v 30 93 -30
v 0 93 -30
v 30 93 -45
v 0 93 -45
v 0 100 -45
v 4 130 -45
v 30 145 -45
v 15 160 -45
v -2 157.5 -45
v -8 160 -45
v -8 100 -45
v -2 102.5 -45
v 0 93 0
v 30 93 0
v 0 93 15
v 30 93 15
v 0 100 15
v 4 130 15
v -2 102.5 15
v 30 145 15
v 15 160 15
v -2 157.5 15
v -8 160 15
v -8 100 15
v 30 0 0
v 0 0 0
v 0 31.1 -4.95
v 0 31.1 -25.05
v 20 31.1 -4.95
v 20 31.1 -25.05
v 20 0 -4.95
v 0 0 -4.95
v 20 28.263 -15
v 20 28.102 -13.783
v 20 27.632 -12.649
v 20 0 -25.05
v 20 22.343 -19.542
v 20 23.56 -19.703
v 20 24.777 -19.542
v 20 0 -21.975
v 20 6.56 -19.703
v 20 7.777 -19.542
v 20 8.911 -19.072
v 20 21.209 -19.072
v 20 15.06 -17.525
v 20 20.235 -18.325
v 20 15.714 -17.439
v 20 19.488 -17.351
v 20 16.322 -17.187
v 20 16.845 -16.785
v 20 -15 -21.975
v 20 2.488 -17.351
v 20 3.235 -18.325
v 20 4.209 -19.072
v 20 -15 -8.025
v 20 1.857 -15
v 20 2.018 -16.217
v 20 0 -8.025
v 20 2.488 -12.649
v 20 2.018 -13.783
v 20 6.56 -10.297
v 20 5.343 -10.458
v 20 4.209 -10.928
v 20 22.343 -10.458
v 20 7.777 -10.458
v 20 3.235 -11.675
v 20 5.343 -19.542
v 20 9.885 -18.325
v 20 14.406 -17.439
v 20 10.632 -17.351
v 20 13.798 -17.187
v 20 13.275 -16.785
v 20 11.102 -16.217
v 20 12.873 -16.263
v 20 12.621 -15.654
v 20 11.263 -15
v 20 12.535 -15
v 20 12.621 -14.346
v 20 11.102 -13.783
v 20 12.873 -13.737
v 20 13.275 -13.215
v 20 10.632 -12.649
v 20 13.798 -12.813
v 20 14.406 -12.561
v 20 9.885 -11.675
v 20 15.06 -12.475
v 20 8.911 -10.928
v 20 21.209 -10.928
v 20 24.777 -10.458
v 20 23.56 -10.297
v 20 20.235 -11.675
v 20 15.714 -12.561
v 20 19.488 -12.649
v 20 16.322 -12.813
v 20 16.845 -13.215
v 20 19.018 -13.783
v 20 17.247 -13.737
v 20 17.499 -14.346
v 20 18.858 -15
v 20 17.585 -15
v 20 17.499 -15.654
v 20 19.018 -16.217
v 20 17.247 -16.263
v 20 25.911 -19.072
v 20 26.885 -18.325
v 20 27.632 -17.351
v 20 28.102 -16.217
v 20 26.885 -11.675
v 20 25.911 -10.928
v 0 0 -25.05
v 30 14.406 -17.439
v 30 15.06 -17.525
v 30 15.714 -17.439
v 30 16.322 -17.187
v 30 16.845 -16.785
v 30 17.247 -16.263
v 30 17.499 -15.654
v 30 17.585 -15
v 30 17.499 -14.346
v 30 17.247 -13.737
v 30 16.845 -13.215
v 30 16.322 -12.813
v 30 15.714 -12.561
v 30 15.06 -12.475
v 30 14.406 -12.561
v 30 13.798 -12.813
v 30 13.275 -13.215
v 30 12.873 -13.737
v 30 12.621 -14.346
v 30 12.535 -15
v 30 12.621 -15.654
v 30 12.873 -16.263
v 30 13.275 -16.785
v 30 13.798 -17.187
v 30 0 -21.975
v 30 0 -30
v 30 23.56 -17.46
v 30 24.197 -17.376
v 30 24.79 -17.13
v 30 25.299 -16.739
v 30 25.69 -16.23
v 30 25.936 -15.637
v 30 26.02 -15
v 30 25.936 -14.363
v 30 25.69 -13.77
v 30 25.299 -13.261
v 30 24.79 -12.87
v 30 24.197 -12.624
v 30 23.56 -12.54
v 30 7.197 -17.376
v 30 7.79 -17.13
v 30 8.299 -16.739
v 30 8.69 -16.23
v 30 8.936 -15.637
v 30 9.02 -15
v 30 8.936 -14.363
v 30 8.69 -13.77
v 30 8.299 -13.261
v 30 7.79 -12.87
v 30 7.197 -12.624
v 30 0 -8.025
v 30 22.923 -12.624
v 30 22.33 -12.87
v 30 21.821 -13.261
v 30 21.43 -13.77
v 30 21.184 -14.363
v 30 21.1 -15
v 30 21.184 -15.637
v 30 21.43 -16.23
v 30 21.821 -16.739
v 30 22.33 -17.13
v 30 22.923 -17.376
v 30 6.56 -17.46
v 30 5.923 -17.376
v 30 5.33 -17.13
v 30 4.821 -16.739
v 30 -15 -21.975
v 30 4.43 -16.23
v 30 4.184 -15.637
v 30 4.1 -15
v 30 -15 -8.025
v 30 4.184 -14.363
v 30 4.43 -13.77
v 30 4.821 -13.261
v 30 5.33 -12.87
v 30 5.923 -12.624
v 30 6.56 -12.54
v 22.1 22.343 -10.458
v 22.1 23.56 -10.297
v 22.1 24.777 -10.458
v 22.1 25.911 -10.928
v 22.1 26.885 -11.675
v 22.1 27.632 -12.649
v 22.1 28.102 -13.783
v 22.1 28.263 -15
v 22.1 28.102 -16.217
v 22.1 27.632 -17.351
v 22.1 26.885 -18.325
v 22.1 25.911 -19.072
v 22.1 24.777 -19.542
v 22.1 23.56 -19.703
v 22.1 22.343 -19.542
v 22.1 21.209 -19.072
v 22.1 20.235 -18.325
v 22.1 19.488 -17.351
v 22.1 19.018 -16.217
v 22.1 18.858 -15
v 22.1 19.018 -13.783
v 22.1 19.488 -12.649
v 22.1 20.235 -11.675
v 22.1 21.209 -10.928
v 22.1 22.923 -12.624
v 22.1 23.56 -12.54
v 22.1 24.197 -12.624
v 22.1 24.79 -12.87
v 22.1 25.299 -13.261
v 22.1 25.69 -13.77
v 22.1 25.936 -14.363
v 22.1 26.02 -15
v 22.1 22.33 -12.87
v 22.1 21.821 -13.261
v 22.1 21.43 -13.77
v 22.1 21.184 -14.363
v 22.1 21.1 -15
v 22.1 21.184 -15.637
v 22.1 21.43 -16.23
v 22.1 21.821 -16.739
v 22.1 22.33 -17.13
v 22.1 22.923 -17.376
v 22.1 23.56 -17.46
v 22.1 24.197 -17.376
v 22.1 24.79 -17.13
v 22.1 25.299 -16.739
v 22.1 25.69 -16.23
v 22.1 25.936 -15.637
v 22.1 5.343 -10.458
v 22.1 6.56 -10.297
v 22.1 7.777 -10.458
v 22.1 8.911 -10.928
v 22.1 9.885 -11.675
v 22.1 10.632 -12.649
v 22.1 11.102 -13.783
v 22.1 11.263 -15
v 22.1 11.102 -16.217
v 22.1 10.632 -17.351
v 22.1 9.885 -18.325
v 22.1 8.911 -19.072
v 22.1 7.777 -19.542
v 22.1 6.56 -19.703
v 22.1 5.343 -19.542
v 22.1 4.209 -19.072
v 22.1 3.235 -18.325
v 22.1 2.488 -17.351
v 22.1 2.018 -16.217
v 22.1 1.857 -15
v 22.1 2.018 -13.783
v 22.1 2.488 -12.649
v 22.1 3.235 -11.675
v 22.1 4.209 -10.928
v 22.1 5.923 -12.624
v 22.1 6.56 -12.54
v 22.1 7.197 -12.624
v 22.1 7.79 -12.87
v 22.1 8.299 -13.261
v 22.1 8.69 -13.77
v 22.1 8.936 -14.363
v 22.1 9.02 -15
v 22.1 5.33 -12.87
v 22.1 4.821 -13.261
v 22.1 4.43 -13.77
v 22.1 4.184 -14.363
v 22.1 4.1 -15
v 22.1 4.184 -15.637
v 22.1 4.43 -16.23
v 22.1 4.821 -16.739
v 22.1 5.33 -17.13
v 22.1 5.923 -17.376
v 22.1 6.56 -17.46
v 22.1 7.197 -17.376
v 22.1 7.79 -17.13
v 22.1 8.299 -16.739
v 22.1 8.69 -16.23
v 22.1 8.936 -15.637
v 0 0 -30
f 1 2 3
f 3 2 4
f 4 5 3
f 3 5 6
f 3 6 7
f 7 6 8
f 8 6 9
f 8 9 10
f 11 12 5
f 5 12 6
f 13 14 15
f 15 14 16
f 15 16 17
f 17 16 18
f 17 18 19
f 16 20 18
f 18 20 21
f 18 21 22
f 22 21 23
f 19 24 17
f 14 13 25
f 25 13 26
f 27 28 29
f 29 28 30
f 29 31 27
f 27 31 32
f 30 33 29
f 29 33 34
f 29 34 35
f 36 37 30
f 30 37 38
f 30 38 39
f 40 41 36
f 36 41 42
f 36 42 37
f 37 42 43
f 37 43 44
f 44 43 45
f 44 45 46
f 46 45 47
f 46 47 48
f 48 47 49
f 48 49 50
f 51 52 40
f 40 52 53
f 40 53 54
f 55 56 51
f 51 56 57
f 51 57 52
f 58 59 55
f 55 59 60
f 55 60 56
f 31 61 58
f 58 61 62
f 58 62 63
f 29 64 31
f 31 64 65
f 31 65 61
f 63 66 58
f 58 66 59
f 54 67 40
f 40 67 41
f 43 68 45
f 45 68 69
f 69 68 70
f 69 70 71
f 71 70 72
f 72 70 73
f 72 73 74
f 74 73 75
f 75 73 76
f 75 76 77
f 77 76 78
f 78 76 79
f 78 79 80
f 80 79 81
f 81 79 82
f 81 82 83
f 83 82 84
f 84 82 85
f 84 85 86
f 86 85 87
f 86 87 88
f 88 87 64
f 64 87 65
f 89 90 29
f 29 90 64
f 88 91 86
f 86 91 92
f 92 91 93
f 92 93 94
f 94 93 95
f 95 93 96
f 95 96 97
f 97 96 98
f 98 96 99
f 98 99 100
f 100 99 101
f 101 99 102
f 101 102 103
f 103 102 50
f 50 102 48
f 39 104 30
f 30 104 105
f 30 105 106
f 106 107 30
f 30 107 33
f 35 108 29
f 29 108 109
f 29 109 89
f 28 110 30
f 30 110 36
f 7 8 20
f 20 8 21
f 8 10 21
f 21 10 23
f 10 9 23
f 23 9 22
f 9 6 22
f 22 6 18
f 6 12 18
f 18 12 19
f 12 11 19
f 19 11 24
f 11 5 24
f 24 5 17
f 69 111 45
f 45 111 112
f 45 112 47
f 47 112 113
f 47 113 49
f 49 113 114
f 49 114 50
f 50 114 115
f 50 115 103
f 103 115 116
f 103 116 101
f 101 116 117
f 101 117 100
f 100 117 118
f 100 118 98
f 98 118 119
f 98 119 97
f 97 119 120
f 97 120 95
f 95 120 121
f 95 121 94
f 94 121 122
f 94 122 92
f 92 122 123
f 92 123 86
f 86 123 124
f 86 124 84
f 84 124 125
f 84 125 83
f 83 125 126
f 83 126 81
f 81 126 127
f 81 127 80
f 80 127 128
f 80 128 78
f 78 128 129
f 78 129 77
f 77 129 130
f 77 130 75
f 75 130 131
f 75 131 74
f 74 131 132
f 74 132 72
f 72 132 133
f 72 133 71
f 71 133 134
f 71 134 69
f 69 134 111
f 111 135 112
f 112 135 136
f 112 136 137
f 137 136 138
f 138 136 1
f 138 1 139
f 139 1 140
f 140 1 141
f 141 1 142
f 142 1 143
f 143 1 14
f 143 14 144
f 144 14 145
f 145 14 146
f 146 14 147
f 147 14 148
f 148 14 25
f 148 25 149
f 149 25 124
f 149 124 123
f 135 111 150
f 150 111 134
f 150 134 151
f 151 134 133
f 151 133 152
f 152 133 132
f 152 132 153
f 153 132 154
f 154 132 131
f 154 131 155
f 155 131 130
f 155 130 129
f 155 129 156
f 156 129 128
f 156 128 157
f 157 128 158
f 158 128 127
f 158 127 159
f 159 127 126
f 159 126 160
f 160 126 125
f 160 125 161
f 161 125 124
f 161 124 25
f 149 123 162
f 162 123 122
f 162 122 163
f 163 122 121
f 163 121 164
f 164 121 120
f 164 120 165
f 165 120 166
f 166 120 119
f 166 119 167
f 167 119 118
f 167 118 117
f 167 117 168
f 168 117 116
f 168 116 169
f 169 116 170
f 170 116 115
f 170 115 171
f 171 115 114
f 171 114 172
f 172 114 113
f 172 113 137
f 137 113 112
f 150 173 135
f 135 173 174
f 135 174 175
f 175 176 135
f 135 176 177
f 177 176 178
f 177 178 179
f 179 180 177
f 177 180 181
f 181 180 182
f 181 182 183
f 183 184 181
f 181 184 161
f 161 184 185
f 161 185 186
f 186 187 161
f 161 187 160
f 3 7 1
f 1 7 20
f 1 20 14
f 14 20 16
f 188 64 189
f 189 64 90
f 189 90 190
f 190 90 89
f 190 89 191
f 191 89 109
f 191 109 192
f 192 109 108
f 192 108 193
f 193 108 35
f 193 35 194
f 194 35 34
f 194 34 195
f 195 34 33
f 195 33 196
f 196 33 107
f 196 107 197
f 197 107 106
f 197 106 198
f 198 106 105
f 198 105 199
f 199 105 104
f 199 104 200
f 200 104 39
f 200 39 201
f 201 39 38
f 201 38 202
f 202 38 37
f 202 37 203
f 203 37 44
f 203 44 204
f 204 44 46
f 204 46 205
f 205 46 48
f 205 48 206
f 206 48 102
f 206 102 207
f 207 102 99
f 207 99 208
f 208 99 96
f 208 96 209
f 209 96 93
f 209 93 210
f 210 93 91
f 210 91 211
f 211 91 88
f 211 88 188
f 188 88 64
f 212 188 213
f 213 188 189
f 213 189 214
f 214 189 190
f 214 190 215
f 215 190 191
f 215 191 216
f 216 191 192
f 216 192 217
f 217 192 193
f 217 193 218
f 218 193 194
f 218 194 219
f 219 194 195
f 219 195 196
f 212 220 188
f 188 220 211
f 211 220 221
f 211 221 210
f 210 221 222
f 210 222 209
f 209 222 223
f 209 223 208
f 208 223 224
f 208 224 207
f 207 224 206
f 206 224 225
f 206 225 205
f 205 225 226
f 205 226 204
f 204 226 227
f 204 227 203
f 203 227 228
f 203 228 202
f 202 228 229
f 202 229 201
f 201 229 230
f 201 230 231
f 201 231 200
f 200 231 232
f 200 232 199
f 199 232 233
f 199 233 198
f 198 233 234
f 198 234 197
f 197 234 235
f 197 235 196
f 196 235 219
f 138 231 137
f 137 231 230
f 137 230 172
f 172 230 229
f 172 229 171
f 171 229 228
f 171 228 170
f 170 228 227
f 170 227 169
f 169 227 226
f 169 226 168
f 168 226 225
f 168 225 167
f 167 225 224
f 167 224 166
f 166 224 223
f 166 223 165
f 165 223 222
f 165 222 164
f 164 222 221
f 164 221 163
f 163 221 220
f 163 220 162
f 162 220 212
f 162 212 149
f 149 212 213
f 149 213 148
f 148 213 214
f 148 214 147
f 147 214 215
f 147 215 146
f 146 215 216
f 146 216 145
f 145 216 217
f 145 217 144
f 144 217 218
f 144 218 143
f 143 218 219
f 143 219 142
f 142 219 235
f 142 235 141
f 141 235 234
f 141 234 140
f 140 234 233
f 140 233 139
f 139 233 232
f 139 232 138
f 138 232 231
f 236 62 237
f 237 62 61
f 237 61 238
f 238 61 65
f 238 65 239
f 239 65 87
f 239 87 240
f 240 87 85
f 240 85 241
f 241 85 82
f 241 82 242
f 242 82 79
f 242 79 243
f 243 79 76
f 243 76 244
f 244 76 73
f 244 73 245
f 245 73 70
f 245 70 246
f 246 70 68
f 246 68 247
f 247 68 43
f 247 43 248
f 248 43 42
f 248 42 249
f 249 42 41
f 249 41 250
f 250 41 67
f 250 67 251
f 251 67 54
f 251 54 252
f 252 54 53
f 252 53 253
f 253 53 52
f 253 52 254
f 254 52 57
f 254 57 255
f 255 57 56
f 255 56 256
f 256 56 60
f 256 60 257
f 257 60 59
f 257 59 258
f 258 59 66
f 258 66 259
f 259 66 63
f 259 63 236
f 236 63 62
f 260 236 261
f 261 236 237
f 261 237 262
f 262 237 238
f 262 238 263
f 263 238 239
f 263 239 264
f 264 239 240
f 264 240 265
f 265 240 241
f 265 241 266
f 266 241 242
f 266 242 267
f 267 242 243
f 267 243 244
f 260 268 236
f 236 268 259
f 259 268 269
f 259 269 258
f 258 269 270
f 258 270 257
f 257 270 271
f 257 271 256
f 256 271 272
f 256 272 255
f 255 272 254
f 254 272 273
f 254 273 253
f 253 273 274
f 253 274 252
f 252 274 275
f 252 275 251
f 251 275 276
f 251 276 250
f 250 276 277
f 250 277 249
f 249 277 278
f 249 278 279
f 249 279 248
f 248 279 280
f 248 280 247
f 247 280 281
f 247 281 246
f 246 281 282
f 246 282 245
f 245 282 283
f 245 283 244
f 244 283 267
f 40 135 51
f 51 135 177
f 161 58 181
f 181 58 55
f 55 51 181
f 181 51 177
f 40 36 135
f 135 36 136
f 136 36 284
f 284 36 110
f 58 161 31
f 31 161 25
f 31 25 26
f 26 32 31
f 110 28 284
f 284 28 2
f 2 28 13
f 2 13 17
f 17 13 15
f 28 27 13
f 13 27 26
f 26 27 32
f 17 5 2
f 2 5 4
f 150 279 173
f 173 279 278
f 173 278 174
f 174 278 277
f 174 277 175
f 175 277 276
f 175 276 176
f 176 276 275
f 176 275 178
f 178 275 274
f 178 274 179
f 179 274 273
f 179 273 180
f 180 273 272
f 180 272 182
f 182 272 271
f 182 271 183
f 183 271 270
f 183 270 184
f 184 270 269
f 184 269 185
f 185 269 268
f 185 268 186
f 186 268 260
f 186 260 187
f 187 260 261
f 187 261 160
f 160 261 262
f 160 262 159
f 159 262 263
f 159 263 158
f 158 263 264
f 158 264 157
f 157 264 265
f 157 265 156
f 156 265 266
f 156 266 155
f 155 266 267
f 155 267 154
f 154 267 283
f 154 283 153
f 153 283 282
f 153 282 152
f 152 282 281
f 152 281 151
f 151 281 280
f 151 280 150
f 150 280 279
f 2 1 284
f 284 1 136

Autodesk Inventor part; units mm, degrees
ref_plane "YZ Plane" through (0, 0, 0) normal (1, 0, 0) x (0, 1, 0)
ref_plane "XZ Plane" through (0, 0, 0) normal (0, 1, 0) x (-1, 0, 0)
sketch "Sketch1" plane through (0, 0, 0) normal (0, 0, 1) x (1, 0, 0)
  line L0 (0, 0) -> (25, 0)
  line L1 (25, 0) -> (25, 40)
  line L2 (25, 40) -> (0, 40)
  line L3 (0, 40) -> (0, 0)
  dimension "d1" = 25
  dimension "d2" = 40
  dimension "d3" = 25
extrude "Extrusion1" add sketch "Sketch1" against normal blind 30
sketch "Sketch2" plane through (25, 0, 0) normal (1, 0, 0) x (0, 0, -1)
  line L0 (0, 0) -> (30, 0) projected
  circle A0 centre (15, 6.56) radius 2.46
extrude "Extrusion2" cut sketch "Sketch2" against normal blind 30
sketch "Sketch3" plane through (0, 0, 0) normal (-1, 0, 0) x (0, 0, 1)
  line L0 (0, 0) -> (-30, 0) projected
  line L1 (-25.05, 0) -> (-4.95, 0)
  line L2 (-4.95, 0) -> (-4.95, 33.12)
  line L3 (-4.95, 33.12) -> (-25.05, 33.12)
  line L4 (-25.05, 33.12) -> (-25.05, 0)
  dimension "d11" = 20.1
extrude "Extrusion3" cut sketch "Sketch3" against normal blind 20
sketch "Sketch4" plane through (0, 0, 0) normal (0, -1, 0) x (1, 0, 0)
  line L0 (20, -4.95) -> (20, -25.05) projected
  line L1 (20, -15) -> (25, -15)
  line L2 (25, 0) -> (25, -30) projected
  line L3 (20, -8.025) -> (25, -8.025)
  line L4 (25, -8.025) -> (25, -21.975)
  line L5 (25, -21.975) -> (20, -21.975)
  line L6 (20, -21.975) -> (20, -8.025)
  line L7 (20, -8.025) -> (25, -21.975) construction
  line L8 (25, -8.025) -> (20, -21.975) construction
  line L9 (25, -12.54) -> (25, -17.46) projected
  point P0 (0, 0)
  point P1 (22.5, -15)
  dimension "d14" = 13.95
extrude "Extrusion4" add sketch "Sketch4" along normal blind 15
sketch "Sketch5" plane through (20, 0, 0) normal (-1, 0, 0) x (0, 0, 1)
  circle A0 centre (-15, 6.56) radius 2.46 projected
  circle A1 centre (-15, 6.56) radius 4.7025
  circle A2 centre (-15, 6.56) radius 2.46 projected
  circle A3 centre (-15, 6.56) radius 2.46
  point P0 (0, 0)
  dimension "d17" = 9.405
extrude "Extrusion5" cut sketch "Sketch5" against normal blind 2.1
sketch "Sketch6" plane through (25, 0, 0) normal (1, 0, 0) x (0, 0, -1)
  circle A0 centre (15, 6.56) radius 4.7025 projected
  line L0 (15, 6.56) -> (15, 23.56)
  circle A1 centre (15, 23.56) radius 2.46
  point P0 (0, 0)
  dimension "d20" = 17
  dimension "d21" = 4.92
extrude "Extrusion6" cut sketch "Sketch6" against normal blind 10 contours A1
sketch "Sketch7" plane through (20, 0, 0) normal (-1, 0, 0) x (0, 0, 1)
  circle A0 centre (-15, 23.56) radius 2.46 projected
  circle A1 centre (-15, 23.56) radius 4.7025
  point P0 (0, 0)
  dimension "d24" = 9.405
extrude "Extrusion7" cut sketch "Sketch7" against normal blind 2.1
sketch "Sketch9" plane through (25, 0, 0) normal (1, 0, 0) x (0, 0, -1)
  circle A0 centre (15, 6.56) radius 2.46 projected
  circle A1 centre (15, 6.56) radius 2.46
  circle A2 centre (15, 23.56) radius 2.46 projected
  circle A3 centre (15, 23.56) radius 2.46
  line L0 (30, 40) -> (30, 0) projected
  line L1 (30, 0) -> (30, 40)
  line L2 (30, 40) -> (0, 40)
  line L3 (0, 40) -> (0, 0)
  line L4 (0, 0) -> (8.025, 0) projected
  line L5 (21.975, 0) -> (21.975, -15)
  line L6 (21.975, -15) -> (8.025, -15)
  line L7 (8.025, -15) -> (8.025, 0)
  line L8 (0, 0) -> (8.025, 0)
  line L9 (21.975, 0) -> (30, 0)
extrude "Extrusion8" add sketch "Sketch9" along normal blind 5
sketch "Sketch10" plane through (0, 40, 0) normal (0, 1, 0) x (1, 0, 0)
  line L0 (0, 30) -> (30, 30) projected
  line L1 (30, 0) -> (0, 0) projected
  line L2 (0, 30) -> (30, 30)
  line L3 (30, 30) -> (30, 0)
  line L4 (30, 0) -> (0, 0)
  line L5 (0, 0) -> (0, 30)
extrude "Extrusion9" add sketch "Sketch10" along normal blind 30
sketch "Sketch12" plane through (30, 0, 0) normal (1, 0, 0) x (0, 0, -1)
  circle A0 centre (15, 6.56) radius 2.46 projected
  line L0 (15, 6.56) -> (15, 15.06)
  circle A1 centre (15, 15.06) radius 2.525
  point P0 (0, 0)
  dimension "d31" = 8.5
  dimension "d33" = 5.05
extrude "Extrusion10" cut sketch "Sketch12" against normal blind 30 contours A1
sketch "Sketch14" plane through (0, 0, 0) normal (0, 0, 1) x (1, 0, 0)
  line L0 (30, 70) -> (0, 70) projected
  line L1 (0, 100) -> (-8, 100)
  line L2 (30, 0) -> (30, 70) projected
  line L3 (30, 118) -> (30, 70)
  line L4 (30, 105) -> (30, 100)
  line L5 (0, 70) -> (30, 70) projected
  line L6 (0, 70) -> (0, 100)
  line L7 (30, 122.5) -> (30, 118)
  line L8 (30, 70) -> (30, 145)
  line L9 (-2, 157.5) -> (-8, 160)
  line L10 (-2, 102.5) -> (-8, 100)
  line L11 (4, 130) -> (-2, 102.5)
  line L12 (4, 130) -> (-2, 157.5)
  line L13 (-8, 160) -> (15, 160)
  line L14 (30, 145) -> (15, 160)
  point P0 (0, 0)
  dimension "d47" = 30
extrude "Extrusion12" add sketch "Sketch14" against normal blind 30
sketch "Sketch15" plane through (0, 0, -25.05) normal (-1, 0, 0) x (0, 0, 1)
  line L0 (0, 33.12) -> (20.1, 33.12) projected
  line L1 (20.1, 33.12) -> (20.1, 0) projected
  line L2 (0, 33.12) -> (20.1, 33.12)
  line L3 (20.1, 33.12) -> (20.1, 31.1)
  line L4 (20.1, 31.1) -> (0, 31.1)
  line L5 (0, 31.1) -> (0, 33.12)
  point P0 (25.05, 0)
  dimension "d57" = 2.02
extrude "Extrusion13" add sketch "Sketch15" against normal blind 20
sketch "Sketch27" plane through (0, 0, 0) normal (0, 0, 1) x (1, 0, 0)
  point P0 (0, 0)
sketch "Sketch28" plane through (0, 0, 0) normal (0, 0, 1) x (1, 0, 0)
  line L0 (0, 100) -> (-8, 100) projected
  line L1 (0, 100) -> (-8, 100)
  line L2 (-8, 100) -> (-2, 102.5) projected
  line L3 (-8, 100) -> (-2, 102.5)
  line L4 (-2, 102.5) -> (4, 130) projected
  line L5 (-2, 102.5) -> (4, 130)
  line L6 (4, 130) -> (-2, 157.5) projected
  line L7 (4, 130) -> (-2, 157.5)
  line L8 (-2, 157.5) -> (-8, 160) projected
  line L9 (-2, 157.5) -> (-8, 160)
  line L10 (-8, 160) -> (15, 160) projected
  line L11 (-8, 160) -> (15, 160)
  line L12 (15, 160) -> (30, 145) projected
  line L13 (15, 160) -> (30, 145)
  line L14 (30, 145) -> (30, 93)
  line L15 (30, 0) -> (30, 145) projected
  line L16 (30, 93) -> (0, 93)
  line L17 (0, 0) -> (0, 100) projected
  line L18 (0, 93) -> (0, 100)
  dimension "d98" = 52
extrude "Extrusion14" add sketch "Sketch28" along normal blind 15
ref_plane "Work Plane1" through (0, 0, -15) normal (0, 0, 1) x (1, 0, 0)
mirror "Mirror1" about plane through (0, 0, -15) normal (0, 0, 1) of "Extrusion14"
properties part number "55mm_x_60mm"
